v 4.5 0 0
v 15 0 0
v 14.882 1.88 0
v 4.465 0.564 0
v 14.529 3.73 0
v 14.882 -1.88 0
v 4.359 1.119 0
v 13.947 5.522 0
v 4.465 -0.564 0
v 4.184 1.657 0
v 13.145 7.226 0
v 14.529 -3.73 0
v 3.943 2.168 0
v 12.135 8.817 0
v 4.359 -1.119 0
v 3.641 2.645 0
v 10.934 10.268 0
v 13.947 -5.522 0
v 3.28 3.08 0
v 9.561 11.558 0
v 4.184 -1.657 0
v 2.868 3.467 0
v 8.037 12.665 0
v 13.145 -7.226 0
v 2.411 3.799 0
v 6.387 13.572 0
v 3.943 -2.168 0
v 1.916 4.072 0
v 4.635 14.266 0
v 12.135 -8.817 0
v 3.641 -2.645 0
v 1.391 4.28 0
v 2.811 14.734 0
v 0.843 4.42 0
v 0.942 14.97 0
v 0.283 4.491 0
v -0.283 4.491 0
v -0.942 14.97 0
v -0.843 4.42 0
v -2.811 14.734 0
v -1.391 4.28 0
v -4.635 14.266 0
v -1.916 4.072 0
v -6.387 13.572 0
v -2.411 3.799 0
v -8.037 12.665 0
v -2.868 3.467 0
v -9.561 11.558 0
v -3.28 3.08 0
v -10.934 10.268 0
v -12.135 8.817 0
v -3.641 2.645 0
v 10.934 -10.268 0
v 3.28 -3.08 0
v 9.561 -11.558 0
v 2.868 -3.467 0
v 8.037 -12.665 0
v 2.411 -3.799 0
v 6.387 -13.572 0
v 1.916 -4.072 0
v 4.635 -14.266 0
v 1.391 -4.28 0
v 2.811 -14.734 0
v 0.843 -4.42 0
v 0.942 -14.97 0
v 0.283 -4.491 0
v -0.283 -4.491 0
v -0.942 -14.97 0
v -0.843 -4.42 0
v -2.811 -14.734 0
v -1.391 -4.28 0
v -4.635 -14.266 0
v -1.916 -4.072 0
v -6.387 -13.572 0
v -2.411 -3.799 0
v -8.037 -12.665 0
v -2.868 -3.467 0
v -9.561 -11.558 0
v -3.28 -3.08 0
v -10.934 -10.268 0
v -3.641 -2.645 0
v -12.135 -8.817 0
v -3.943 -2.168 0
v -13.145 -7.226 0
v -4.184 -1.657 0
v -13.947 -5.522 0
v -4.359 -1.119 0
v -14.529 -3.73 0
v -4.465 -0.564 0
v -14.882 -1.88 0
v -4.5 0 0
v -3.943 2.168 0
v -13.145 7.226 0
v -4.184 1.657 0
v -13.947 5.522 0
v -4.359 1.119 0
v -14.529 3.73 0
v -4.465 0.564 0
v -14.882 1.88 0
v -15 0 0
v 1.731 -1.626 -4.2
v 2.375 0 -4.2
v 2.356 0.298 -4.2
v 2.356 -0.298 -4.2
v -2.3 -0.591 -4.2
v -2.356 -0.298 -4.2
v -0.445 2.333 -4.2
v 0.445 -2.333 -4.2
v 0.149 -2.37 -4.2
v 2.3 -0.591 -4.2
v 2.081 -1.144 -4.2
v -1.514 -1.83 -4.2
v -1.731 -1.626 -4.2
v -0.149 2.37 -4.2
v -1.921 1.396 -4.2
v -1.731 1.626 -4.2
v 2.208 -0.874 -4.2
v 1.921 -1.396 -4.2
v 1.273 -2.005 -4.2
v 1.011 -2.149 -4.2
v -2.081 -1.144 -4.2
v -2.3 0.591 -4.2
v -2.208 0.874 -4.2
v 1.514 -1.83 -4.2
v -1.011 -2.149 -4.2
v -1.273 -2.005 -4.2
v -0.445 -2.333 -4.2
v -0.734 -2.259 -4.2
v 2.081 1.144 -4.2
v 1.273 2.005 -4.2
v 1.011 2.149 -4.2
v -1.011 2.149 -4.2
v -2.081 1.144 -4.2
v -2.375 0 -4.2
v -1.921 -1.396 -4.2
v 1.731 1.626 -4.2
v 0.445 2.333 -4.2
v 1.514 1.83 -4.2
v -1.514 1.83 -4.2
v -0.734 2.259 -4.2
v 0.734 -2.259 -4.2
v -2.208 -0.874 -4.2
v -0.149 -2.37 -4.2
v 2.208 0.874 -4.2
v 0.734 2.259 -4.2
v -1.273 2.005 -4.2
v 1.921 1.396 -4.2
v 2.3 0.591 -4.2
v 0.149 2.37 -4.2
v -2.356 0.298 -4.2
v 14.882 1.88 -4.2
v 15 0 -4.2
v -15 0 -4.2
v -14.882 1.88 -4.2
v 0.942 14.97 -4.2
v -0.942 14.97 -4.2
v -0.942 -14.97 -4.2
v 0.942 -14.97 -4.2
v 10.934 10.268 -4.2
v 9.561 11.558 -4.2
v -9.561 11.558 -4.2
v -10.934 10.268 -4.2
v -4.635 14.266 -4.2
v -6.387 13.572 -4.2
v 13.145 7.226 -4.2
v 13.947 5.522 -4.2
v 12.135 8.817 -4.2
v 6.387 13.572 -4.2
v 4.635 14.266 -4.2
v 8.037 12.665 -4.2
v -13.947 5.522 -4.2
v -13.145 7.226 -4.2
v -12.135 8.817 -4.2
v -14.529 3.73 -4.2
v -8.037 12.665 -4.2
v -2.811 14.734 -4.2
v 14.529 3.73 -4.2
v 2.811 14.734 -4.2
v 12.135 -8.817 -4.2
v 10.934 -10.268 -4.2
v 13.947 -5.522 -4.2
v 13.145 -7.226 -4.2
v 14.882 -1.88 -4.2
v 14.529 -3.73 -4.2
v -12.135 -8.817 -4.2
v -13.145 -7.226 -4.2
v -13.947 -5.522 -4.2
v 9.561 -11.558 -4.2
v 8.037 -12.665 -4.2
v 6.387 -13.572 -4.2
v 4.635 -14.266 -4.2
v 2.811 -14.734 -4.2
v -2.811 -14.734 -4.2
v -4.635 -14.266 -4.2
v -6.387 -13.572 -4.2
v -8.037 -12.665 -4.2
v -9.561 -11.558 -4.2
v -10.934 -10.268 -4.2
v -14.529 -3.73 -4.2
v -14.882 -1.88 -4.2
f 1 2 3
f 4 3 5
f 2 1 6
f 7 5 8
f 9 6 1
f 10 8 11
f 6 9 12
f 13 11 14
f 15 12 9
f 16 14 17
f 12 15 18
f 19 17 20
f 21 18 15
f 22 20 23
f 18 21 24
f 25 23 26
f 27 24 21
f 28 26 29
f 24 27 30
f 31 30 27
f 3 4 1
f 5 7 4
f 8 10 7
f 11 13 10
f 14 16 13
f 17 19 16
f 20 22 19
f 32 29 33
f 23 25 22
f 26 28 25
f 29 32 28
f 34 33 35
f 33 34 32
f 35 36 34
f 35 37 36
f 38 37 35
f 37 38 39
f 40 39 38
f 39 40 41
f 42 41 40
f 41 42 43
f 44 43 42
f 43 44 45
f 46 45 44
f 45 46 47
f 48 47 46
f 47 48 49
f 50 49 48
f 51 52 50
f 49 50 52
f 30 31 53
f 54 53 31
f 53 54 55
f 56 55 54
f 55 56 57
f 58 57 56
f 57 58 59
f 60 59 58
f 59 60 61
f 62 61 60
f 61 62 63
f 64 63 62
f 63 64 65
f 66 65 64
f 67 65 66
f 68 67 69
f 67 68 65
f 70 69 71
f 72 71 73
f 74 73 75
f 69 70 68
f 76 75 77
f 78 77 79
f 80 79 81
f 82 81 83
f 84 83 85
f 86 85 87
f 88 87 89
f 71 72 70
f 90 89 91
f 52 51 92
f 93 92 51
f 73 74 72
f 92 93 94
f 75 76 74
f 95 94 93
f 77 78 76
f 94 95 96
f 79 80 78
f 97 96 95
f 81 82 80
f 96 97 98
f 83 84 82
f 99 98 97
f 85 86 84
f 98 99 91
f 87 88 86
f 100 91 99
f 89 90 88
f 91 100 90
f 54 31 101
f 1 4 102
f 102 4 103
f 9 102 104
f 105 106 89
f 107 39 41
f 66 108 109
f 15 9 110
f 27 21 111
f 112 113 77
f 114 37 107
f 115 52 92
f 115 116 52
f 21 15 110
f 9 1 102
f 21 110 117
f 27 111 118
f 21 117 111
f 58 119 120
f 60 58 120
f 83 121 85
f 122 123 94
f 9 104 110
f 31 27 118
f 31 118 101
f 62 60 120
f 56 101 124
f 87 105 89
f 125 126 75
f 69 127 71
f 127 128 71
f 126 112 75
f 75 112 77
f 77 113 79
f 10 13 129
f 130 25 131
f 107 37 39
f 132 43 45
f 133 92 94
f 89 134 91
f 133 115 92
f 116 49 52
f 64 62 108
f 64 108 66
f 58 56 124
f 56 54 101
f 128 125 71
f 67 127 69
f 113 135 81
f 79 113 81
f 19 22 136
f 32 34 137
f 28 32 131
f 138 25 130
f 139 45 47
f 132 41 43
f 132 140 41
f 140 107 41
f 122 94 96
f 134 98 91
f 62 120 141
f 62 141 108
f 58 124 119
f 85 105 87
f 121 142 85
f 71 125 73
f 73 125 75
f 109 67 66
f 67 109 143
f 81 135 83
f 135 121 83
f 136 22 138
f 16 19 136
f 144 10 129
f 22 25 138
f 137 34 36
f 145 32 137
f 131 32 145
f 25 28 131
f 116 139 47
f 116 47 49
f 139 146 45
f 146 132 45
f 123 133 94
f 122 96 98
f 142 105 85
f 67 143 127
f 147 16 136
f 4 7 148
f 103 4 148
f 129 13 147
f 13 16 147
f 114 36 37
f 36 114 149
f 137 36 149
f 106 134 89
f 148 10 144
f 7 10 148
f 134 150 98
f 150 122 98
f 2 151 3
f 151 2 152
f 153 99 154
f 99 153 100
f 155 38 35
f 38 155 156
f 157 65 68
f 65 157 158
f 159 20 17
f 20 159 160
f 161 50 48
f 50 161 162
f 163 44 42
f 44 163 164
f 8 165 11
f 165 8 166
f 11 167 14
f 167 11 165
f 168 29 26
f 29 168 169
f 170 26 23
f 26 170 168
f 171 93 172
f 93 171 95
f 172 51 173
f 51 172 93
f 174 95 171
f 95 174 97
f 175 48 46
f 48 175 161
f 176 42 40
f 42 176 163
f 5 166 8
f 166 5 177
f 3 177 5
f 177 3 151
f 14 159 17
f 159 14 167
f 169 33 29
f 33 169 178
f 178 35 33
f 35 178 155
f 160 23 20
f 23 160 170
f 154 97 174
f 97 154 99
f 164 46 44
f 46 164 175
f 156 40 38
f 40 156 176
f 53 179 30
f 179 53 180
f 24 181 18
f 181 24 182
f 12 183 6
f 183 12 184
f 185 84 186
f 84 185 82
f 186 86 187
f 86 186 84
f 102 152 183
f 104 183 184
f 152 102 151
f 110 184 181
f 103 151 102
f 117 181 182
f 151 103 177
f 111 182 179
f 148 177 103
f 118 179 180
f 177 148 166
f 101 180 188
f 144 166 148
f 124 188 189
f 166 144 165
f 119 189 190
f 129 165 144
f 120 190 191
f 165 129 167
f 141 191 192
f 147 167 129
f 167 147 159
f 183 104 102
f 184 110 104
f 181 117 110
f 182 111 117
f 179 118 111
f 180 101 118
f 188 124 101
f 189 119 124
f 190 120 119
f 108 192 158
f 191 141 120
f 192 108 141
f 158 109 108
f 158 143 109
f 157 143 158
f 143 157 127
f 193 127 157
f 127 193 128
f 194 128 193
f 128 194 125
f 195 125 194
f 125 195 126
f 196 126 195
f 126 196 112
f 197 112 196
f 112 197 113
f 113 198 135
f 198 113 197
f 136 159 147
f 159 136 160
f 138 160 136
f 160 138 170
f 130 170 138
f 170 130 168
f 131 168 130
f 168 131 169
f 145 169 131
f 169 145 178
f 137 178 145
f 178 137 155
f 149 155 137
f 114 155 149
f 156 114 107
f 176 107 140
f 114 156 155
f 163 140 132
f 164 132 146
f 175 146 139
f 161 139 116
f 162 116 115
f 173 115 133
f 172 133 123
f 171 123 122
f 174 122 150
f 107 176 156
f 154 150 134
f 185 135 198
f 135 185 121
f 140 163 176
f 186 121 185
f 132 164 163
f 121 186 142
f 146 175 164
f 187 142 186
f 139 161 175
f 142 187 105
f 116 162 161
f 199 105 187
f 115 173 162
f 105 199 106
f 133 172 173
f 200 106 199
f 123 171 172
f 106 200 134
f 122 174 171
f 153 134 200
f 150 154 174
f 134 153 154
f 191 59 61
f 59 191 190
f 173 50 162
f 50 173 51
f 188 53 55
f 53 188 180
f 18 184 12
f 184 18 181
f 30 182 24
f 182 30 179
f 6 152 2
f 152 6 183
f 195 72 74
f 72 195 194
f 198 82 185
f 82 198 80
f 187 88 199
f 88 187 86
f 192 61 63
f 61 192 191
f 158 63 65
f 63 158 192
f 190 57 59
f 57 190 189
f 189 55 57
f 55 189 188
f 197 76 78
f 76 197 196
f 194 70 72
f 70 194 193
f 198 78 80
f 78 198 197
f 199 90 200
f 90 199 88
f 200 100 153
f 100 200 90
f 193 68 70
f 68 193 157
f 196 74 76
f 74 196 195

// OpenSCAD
$fn = 50;


difference() {
	union() {
		translate(v = [0, 0, -4.2000000000]) {
			cylinder(h = 4.2000000000, r = 15.0000000000);
		}
	}
	union() {
		translate(v = [0, 0, 0]) {
			rotate(a = [0, 0, 0]) {
				difference() {
					union() {
						translate(v = [0, 0, -7.2000000000]) {
							cylinder(h = 7.2000000000, r = 2.2500000000);
						}
						translate(v = [0, 0, -4.2000000000]) {
							cylinder(h = 4.2000000000, r1 = 2.3750000000, r2 = 4.5000000000);
						}
						translate(v = [0, 0, -7.2000000000]) {
							cylinder(h = 7.2000000000, r = 2.3750000000);
						}
						translate(v = [0, 0, -7.2000000000]) {
							cylinder(h = 7.2000000000, r = 2.2500000000);
						}
					}
					union();
				}
			}
		}
	}
}
